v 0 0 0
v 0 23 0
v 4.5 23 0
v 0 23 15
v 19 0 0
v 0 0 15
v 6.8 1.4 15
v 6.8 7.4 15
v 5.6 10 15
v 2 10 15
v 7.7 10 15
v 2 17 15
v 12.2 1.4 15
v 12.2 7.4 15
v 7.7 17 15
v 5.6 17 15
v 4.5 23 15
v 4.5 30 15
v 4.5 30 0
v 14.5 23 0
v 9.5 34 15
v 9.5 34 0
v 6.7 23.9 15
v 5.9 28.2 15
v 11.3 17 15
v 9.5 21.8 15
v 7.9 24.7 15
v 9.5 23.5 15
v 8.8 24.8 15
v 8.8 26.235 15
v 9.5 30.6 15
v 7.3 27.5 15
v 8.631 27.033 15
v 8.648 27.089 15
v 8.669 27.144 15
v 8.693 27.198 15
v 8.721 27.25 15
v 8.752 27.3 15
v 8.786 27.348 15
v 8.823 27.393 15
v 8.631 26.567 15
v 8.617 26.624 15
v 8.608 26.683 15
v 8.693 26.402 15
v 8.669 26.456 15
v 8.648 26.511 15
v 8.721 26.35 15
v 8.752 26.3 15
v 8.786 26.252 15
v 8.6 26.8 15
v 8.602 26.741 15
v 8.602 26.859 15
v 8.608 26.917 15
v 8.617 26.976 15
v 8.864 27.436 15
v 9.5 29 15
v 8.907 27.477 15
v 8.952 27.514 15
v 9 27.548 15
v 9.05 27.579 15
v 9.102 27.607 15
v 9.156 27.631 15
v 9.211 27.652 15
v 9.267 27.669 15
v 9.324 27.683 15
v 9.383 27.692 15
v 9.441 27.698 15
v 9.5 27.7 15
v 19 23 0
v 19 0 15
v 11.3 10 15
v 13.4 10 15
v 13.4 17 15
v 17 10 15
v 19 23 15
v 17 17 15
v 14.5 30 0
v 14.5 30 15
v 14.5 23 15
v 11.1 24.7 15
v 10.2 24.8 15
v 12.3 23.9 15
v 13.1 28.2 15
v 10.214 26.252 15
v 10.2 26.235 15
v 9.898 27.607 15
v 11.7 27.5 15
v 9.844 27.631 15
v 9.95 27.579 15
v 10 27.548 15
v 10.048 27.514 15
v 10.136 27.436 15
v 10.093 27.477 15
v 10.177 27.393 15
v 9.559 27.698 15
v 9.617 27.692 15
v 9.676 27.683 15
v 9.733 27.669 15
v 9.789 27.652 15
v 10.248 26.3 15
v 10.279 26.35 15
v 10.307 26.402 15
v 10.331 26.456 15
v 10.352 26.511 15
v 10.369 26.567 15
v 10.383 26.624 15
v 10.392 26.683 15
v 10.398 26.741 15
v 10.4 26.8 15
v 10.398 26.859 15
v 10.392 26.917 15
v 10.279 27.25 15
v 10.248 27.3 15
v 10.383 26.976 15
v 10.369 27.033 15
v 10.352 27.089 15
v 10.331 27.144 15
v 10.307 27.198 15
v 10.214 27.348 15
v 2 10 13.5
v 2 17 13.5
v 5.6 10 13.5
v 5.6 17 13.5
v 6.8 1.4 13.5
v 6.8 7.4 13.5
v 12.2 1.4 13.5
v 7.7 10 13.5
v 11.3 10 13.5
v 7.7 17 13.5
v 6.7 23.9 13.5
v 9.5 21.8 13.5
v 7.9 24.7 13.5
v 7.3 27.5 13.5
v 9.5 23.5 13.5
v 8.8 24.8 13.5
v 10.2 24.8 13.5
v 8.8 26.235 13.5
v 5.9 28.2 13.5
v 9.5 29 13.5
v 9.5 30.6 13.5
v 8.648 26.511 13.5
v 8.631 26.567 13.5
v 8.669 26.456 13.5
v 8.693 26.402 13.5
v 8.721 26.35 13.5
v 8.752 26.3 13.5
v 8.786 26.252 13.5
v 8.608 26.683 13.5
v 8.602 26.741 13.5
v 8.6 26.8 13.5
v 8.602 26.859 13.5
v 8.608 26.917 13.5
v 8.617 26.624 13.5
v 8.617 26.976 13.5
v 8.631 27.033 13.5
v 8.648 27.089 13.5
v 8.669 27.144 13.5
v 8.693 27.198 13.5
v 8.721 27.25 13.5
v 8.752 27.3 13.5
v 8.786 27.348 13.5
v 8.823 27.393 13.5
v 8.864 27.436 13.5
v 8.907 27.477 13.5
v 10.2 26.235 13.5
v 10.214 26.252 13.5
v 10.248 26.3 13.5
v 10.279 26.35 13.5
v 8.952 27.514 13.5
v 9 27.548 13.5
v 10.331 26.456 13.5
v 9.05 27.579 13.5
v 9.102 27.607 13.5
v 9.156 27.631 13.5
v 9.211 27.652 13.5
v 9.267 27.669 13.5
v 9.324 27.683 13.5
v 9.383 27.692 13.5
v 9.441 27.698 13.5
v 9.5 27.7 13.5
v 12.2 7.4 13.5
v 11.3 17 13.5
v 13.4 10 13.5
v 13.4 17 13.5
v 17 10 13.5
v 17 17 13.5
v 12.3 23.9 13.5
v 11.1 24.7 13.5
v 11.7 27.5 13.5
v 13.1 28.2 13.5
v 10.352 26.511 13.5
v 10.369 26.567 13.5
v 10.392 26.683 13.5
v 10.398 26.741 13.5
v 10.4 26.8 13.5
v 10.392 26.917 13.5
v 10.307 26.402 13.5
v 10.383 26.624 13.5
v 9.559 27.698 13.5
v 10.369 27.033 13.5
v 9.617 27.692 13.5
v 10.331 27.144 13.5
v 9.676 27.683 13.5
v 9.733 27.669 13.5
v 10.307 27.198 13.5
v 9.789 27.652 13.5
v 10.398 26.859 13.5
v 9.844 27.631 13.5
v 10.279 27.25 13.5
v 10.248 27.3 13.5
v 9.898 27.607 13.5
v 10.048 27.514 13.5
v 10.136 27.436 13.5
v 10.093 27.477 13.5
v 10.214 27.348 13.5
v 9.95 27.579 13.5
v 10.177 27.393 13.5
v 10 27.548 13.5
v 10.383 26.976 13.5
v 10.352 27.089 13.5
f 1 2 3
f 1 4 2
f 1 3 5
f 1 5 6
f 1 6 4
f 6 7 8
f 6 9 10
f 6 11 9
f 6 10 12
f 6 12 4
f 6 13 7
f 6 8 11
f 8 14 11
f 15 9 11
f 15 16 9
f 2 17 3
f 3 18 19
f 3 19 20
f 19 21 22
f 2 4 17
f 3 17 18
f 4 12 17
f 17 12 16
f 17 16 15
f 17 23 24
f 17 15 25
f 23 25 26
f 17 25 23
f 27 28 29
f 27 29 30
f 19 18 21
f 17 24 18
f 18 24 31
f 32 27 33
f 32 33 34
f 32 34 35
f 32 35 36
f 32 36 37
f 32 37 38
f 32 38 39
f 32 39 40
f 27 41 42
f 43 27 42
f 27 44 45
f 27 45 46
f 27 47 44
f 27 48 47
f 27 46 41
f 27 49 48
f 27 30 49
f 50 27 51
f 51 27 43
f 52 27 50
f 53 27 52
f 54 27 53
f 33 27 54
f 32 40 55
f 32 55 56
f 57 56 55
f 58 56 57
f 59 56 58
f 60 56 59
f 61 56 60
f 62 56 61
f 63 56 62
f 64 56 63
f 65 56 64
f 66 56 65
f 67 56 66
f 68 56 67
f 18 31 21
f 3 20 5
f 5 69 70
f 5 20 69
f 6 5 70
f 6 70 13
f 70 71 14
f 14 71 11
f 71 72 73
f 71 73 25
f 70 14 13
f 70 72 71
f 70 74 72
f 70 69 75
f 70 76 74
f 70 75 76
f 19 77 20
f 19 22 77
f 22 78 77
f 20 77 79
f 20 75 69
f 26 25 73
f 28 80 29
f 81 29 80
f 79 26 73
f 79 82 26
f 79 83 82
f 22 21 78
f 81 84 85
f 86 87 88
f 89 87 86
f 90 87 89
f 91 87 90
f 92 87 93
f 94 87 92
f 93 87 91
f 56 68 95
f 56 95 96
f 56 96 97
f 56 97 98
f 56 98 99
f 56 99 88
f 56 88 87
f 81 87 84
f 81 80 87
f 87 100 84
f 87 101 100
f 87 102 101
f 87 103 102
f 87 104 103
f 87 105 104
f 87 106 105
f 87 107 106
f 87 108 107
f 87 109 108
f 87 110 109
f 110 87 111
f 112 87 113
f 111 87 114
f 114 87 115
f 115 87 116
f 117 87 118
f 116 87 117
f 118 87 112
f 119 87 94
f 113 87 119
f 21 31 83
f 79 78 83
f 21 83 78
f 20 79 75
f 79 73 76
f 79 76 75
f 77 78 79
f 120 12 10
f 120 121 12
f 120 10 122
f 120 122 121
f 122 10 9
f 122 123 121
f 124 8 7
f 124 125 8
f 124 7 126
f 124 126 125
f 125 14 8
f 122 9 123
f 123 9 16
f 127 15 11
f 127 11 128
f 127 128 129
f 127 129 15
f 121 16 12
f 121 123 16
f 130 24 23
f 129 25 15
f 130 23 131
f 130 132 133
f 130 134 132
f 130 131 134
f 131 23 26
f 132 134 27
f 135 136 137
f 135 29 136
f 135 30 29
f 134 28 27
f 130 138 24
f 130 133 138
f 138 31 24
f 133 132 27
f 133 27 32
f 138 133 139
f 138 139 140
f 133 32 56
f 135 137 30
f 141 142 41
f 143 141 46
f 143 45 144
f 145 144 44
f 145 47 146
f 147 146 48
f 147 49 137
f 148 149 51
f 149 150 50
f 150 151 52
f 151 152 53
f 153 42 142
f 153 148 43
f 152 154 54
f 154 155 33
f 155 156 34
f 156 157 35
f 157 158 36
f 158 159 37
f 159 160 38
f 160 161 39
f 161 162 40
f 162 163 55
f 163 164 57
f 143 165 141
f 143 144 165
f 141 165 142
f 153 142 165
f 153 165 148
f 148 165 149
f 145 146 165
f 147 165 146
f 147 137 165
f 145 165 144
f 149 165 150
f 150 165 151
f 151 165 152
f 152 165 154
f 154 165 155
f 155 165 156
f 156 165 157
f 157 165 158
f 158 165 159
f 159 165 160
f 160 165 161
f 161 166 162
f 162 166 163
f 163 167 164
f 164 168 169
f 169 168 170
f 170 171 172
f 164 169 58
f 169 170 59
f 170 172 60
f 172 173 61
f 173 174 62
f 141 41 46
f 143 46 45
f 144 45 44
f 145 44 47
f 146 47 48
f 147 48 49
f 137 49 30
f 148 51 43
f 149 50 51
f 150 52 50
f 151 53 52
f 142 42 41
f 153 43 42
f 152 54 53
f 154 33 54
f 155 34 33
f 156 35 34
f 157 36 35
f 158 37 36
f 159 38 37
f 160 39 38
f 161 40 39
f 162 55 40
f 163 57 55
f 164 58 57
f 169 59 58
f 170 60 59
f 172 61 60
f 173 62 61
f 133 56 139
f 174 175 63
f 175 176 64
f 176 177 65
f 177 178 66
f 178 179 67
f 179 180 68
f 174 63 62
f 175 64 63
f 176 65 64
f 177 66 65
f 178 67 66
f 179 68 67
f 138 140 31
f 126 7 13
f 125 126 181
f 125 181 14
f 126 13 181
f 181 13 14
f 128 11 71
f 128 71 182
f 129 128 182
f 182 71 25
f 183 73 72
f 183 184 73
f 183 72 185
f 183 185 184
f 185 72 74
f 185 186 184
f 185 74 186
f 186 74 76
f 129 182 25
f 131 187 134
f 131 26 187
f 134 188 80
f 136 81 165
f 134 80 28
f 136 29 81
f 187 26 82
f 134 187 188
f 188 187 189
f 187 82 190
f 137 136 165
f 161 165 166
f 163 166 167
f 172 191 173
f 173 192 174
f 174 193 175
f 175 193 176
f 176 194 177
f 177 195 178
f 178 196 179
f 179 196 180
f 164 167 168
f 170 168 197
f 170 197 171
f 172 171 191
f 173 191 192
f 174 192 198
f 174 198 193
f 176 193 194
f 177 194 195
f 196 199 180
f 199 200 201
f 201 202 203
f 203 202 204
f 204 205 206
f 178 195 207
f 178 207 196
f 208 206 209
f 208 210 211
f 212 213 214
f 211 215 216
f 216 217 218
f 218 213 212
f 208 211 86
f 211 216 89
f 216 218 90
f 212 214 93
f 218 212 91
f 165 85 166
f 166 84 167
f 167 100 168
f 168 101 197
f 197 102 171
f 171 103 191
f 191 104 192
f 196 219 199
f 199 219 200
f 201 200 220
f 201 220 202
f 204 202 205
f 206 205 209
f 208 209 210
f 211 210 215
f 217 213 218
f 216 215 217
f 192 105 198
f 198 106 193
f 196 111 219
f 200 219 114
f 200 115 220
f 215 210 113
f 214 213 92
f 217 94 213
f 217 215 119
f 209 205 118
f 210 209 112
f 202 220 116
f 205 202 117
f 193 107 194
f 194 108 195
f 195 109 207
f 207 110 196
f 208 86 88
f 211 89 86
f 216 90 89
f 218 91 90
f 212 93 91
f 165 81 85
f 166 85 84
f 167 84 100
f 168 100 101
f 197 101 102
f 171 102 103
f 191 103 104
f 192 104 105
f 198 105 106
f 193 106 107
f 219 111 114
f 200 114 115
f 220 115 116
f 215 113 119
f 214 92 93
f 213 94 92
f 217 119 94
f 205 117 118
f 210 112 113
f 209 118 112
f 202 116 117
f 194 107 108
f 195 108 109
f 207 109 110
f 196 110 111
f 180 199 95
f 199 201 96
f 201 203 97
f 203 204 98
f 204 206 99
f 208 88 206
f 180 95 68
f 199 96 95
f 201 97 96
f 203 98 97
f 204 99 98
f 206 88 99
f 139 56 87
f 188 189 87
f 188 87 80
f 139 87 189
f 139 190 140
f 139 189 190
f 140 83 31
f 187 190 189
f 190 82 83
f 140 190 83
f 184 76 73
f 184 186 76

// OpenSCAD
// Building miniatures — Tech, AI & Digital
// Units: millimetres. X = width; Y = facade height; Z = depth.
// Print flat on the back at Z=0. Front Z=15; recesses are 1.5 mm deep.
$fn=96;
depth=15;
recess=1.5;
module rect(x,y,w,h) { translate([x,y]) square([w,h]); }
module disc(x,y,r) { translate([x,y]) circle(r=r); }
module rr(x,y,w,h,r=1) { hull() for(a=[x+r,x+w-r],b=[y+r,y+h-r]) disc(a,b,r); }
module stroke(a,b,w=1.4) { hull() {disc(a[0],a[1],w/2);disc(b[0],b[1],w/2);} }
module ring(x,y,r,w=1.4) { difference(){disc(x,y,r);disc(x,y,r-w);} }
module framed(x,y,w,h,t=1.4) { difference(){rect(x,y,w,h);rect(x+t,y+t,w-2*t,h-2*t);} }
module arrow(a,b,w=1.5) { v=b-a; u=v/norm(v); n=[-u[1],u[0]]; tip=b; neck=b-u*2.8; stroke(a,neck,w); polygon([tip,neck+n*1.9,neck-n*1.9]); }
module building(){difference(){linear_extrude(height=depth) silhouette();translate([0,0,depth-recess]) linear_extrude(height=recess+0.2) details();}}
building();

module silhouette(){polygon([[0,0],[19,0],[19,23],[14.5,23],[14.5,30],[9.5,34],[4.5,30],[4.5,23],[0,23]]);}
module details(){
 rect(6.8,1.4,5.4,6);
 for(x=[2.0,7.7,13.4]) rect(x,10,3.6,7);
 difference(){polygon([[5.9,28.2],[9.5,30.6],[13.1,28.2],[12.3,23.9],[9.5,21.8],[6.7,23.9]]);polygon([[7.3,27.5],[9.5,29.0],[11.7,27.5],[11.1,24.7],[9.5,23.5],[7.9,24.7]]);}
 disc(9.5,26.8,0.9);rect(8.8,24.8,1.4,2.0);
}
